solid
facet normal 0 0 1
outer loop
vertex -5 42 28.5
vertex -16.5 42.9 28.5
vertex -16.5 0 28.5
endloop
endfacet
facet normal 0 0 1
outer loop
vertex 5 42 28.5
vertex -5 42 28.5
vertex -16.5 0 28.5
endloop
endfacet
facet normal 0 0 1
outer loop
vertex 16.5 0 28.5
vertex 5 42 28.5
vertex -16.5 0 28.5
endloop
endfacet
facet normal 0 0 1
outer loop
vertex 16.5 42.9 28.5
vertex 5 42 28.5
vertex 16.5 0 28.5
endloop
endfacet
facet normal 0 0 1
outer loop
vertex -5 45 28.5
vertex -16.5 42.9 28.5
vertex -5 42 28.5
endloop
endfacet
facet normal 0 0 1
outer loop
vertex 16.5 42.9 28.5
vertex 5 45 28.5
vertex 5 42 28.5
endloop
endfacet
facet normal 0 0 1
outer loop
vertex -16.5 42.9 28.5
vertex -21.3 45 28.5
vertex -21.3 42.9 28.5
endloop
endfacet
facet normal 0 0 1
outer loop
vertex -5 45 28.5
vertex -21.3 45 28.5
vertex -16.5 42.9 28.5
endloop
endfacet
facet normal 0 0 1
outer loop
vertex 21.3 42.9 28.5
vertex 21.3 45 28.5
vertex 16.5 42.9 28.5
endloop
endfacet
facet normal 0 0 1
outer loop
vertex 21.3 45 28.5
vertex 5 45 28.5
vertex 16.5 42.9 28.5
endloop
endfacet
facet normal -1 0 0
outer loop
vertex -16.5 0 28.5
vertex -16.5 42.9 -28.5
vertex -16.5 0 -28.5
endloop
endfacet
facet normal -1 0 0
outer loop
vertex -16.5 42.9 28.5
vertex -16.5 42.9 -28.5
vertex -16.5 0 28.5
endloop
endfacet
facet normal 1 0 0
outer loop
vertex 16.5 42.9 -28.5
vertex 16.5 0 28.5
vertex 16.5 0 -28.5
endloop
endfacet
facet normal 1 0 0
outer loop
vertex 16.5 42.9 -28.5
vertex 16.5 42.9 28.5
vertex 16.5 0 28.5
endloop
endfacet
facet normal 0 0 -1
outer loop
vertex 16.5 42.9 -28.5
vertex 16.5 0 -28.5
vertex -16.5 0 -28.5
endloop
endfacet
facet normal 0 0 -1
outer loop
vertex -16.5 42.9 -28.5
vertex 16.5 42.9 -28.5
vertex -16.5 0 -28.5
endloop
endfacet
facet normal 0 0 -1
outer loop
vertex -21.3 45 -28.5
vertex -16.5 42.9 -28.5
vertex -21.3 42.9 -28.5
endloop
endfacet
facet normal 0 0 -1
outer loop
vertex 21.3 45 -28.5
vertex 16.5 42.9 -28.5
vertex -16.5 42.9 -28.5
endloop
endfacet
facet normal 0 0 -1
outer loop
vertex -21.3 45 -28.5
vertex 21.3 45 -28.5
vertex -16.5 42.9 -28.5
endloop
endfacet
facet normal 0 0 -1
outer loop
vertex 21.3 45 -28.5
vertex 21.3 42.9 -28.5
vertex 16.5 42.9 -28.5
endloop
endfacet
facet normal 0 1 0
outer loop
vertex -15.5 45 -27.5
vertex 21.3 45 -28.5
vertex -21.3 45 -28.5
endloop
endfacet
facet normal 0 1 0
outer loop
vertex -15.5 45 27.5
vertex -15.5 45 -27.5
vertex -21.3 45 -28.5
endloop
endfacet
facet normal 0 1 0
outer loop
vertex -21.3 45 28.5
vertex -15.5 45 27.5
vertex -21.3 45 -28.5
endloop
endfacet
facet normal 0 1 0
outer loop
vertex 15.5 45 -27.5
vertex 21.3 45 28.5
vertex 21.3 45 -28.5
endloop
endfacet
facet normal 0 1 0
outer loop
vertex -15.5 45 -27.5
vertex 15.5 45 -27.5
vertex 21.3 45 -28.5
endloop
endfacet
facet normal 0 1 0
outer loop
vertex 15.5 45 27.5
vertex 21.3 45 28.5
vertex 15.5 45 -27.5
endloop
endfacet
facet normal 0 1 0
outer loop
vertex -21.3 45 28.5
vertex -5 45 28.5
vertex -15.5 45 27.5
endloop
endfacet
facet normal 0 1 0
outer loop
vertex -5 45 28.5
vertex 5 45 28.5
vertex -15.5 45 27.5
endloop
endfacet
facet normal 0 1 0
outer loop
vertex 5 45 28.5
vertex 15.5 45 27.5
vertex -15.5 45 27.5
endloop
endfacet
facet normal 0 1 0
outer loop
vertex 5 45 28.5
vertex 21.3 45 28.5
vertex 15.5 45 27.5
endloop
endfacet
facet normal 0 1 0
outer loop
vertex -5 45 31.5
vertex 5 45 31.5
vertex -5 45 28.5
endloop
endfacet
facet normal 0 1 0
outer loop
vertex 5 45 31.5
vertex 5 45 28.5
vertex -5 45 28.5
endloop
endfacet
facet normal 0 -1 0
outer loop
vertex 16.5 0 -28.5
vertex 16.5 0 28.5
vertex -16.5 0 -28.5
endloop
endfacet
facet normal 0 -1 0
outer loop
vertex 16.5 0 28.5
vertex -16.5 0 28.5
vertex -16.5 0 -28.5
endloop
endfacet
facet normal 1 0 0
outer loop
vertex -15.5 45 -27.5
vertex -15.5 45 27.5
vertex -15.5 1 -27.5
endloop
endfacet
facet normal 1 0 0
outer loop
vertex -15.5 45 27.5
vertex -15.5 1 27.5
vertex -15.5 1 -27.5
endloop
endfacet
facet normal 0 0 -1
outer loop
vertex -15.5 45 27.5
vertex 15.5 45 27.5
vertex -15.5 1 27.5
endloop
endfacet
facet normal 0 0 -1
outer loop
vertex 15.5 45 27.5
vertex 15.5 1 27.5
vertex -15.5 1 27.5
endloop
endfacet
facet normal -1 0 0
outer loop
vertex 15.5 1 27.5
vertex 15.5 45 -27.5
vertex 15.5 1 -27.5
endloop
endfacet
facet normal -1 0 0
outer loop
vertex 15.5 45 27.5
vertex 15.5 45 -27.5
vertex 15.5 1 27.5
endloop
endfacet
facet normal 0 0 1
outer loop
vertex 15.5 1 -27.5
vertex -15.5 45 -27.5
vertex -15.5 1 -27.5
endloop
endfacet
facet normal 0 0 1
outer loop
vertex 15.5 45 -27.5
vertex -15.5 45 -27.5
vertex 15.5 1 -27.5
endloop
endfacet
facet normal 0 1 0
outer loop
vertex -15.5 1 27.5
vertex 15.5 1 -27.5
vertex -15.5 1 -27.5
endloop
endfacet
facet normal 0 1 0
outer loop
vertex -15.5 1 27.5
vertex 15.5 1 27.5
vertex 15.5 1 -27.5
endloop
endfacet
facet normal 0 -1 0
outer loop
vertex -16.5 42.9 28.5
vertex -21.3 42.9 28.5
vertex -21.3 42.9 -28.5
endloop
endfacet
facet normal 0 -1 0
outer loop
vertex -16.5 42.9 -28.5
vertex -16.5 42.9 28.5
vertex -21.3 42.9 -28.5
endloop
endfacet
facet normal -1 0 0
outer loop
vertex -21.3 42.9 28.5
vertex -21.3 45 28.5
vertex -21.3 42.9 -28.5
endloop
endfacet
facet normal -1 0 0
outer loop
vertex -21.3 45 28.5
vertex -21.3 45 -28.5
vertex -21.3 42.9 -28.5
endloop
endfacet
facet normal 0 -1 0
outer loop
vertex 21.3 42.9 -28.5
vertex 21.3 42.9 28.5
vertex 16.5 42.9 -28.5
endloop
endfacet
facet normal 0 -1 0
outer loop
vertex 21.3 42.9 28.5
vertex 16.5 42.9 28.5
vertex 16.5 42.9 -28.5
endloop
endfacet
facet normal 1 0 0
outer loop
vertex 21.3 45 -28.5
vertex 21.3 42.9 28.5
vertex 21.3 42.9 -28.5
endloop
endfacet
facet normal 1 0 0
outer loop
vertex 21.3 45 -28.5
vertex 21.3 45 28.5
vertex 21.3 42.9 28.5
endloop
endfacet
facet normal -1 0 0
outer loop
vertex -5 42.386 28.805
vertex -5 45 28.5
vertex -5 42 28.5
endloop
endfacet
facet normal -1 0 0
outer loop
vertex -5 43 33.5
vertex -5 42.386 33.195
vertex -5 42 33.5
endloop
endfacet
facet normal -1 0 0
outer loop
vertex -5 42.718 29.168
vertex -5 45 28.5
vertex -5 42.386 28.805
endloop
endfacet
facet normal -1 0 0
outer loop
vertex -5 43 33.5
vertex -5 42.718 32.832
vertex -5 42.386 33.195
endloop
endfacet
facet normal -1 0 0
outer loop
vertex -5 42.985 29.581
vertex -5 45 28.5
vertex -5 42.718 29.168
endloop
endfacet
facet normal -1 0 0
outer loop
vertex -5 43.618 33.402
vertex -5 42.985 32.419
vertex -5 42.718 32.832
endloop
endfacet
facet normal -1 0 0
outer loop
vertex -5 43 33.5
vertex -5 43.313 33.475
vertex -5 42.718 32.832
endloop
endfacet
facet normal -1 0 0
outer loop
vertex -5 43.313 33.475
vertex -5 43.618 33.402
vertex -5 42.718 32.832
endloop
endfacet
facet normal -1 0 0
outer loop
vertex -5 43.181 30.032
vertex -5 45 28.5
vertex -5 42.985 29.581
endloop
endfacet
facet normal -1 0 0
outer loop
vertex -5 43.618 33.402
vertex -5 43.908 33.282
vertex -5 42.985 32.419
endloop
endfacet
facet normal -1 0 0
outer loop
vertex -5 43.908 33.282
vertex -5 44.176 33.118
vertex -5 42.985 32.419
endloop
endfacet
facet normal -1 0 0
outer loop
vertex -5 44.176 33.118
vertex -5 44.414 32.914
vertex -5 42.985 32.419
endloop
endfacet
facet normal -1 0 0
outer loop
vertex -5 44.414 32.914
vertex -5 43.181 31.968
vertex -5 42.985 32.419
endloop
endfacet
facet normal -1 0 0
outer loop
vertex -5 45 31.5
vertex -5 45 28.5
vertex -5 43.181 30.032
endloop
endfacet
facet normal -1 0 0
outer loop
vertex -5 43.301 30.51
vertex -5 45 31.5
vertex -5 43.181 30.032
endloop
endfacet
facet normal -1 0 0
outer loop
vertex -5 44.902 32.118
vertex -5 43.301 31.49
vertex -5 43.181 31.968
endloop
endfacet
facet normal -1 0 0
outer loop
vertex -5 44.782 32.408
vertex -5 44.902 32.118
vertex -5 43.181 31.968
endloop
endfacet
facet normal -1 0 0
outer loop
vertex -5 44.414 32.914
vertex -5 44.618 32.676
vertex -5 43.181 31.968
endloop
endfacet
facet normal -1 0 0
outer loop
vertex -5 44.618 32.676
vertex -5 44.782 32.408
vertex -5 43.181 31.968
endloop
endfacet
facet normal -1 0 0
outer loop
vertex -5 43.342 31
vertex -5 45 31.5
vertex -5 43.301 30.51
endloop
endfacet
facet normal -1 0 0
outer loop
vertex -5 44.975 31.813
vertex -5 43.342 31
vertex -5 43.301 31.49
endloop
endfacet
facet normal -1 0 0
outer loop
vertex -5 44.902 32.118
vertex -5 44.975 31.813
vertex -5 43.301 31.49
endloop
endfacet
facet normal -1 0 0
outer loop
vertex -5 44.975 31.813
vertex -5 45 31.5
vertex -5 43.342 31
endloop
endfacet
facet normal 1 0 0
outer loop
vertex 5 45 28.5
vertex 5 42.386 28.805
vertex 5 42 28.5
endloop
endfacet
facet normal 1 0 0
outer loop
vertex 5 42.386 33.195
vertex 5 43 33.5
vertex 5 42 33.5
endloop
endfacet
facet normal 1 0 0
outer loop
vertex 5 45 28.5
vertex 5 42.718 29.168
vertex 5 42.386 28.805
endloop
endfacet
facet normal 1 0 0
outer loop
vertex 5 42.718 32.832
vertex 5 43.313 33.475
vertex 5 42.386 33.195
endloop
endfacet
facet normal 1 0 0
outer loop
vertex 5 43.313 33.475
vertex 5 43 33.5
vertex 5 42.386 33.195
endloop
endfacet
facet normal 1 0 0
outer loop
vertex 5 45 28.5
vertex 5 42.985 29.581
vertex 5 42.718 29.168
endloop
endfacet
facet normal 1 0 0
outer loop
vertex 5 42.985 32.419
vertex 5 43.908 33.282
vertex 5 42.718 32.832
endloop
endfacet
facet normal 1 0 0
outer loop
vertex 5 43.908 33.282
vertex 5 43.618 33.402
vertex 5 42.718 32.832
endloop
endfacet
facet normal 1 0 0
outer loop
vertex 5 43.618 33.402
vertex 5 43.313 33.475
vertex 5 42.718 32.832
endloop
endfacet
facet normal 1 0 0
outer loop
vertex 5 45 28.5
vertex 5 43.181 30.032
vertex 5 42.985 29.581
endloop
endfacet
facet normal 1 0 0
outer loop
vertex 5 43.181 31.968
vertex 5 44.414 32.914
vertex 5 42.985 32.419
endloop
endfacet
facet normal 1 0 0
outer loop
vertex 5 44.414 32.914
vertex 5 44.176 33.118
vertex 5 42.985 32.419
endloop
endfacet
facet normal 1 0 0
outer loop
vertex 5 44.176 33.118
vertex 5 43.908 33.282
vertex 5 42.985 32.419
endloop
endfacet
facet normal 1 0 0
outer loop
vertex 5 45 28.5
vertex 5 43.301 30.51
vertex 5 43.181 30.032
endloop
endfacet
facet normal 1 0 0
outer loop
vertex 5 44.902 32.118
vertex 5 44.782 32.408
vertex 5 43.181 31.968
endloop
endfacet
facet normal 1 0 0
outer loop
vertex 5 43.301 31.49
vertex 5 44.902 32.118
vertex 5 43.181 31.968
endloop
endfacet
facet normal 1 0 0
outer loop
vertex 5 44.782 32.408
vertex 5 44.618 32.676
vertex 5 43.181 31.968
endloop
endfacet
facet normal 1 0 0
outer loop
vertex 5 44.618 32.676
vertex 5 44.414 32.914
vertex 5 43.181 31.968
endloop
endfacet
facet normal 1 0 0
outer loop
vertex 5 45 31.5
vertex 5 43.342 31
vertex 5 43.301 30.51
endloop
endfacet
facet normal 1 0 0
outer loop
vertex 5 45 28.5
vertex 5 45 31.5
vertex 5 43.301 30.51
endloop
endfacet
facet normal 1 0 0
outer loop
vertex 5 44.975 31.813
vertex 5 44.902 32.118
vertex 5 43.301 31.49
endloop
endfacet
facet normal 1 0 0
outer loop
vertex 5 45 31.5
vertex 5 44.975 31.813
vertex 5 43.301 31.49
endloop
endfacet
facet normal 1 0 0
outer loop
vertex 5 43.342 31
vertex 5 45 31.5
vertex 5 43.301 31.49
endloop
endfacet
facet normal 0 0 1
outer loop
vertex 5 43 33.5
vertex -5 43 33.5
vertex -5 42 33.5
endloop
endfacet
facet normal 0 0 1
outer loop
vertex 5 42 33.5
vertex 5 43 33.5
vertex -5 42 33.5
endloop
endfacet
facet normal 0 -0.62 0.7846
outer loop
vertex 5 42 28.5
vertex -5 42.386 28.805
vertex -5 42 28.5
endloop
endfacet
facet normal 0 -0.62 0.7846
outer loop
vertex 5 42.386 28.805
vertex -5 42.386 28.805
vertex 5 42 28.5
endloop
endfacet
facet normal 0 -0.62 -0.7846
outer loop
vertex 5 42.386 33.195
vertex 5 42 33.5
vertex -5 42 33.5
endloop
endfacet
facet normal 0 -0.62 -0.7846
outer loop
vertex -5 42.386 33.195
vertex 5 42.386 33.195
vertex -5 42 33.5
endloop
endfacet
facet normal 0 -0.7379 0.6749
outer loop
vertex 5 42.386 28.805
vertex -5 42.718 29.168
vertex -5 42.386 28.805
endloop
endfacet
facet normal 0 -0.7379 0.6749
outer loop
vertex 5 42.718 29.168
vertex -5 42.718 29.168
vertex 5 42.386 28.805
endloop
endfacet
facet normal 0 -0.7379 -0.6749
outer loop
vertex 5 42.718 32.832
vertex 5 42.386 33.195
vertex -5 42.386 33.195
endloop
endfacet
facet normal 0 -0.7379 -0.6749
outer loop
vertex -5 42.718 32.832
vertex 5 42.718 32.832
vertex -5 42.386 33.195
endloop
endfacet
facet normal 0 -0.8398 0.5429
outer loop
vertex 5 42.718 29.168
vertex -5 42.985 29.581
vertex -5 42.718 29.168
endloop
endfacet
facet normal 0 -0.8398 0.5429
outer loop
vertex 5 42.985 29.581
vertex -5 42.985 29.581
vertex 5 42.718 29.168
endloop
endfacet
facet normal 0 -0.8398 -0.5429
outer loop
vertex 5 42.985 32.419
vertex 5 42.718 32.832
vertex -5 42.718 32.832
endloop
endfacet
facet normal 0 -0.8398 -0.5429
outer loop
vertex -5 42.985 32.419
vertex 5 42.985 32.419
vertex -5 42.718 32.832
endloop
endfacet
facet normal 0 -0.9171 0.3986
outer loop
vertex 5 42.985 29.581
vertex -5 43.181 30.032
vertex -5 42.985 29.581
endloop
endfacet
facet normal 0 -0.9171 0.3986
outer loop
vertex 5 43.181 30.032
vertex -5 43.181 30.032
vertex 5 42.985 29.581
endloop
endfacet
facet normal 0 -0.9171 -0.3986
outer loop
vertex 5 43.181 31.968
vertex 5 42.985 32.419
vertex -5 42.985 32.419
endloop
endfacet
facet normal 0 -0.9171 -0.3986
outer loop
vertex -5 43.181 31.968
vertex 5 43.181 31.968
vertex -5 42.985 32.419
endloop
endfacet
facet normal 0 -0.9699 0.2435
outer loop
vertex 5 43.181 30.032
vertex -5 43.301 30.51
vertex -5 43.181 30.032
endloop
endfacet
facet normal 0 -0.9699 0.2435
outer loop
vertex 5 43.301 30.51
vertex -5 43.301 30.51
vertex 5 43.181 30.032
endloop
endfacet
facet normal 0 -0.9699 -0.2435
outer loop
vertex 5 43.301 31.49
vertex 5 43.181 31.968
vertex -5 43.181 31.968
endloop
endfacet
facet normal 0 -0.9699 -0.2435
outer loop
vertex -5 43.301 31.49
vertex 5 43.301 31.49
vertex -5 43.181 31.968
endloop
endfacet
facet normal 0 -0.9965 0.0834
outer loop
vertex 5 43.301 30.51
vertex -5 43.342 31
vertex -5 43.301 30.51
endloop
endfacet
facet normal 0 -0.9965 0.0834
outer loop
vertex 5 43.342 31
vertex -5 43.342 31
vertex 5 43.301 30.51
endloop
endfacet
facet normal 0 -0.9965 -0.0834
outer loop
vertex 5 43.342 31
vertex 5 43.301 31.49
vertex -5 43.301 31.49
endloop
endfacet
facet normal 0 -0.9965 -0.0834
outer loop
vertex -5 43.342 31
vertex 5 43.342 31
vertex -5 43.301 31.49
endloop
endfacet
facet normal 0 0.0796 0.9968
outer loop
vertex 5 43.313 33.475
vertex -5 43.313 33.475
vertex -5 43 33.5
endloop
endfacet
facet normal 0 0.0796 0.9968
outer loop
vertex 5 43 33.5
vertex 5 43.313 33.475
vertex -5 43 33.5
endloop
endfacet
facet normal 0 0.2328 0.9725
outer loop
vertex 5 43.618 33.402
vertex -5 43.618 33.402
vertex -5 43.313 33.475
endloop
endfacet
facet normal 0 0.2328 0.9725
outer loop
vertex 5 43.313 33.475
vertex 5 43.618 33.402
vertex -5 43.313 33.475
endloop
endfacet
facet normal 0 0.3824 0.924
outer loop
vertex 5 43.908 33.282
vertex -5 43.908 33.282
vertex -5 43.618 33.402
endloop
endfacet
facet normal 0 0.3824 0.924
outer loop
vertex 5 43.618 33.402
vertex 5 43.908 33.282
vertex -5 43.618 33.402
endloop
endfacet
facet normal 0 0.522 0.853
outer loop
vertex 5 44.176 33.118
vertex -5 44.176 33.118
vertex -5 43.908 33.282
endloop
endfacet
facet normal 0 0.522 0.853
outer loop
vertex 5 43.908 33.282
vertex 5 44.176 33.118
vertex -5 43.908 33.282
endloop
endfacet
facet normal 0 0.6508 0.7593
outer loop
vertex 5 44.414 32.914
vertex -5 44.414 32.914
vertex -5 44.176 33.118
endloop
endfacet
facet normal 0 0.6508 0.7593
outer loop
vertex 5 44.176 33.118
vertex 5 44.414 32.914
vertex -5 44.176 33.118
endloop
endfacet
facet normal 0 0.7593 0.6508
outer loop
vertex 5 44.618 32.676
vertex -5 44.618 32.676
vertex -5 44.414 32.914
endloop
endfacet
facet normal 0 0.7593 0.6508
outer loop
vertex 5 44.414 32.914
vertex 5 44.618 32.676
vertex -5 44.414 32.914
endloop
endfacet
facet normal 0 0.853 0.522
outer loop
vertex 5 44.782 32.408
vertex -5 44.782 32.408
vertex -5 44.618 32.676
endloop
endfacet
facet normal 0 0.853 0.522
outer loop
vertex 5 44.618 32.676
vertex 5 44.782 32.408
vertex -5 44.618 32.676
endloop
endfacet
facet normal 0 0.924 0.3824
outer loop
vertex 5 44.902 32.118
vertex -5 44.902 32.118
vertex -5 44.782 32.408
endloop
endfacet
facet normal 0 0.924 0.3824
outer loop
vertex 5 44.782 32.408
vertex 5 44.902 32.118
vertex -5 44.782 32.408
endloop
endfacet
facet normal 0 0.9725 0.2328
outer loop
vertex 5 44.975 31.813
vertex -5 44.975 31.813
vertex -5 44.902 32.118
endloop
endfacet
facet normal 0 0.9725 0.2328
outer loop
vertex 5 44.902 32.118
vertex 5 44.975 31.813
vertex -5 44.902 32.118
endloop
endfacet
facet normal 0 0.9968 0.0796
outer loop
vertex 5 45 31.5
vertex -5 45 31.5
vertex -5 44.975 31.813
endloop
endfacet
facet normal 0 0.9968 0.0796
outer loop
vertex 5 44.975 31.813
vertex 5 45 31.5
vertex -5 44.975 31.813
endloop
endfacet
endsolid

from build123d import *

# Parameters (mm, degrees)
SKETCH1_W           = 33
SKETCH1_H           = 57
BOSS_EXTRUDE1_DEPTH = 45
SHELL1_T            = -1
SKETCH3_W           = 57
SKETCH3_H           = 2.1
BOSS_EXTRUDE2_DEPTH = 4.8
SKETCH4_W           = 10
SKETCH4_H           = 3
BOSS_EXTRUDE3_DEPTH = 5
CUT_EXTRUDE1_DEPTH  = 10
FILLET2_R           = 2


with BuildPart() as part:
    # Sketch1 → Boss-Extrude1 (new body)
    with BuildSketch(Plane(origin=(0, 0, 0), x_dir=(1, 0, 0), z_dir=(0, 1, 0))):
        Rectangle(SKETCH1_W, SKETCH1_H)
    extrude(amount=BOSS_EXTRUDE1_DEPTH)

    # Shell1
    shell1_openings = [part.faces().sort_by_distance(p)[0] for p in [
        (0, 45, 0),
    ]]
    offset(amount=SHELL1_T, openings=shell1_openings, kind=Kind.INTERSECTION)

    # Sketch3 → Boss-Extrude2 (add)
    with BuildSketch(Plane.ZY.offset(16.5)):
        with Locations((0, 43.95)):
            Rectangle(SKETCH3_W, SKETCH3_H)
    boss_extrude2 = extrude(amount=BOSS_EXTRUDE2_DEPTH)

    # Mirror1: Boss-Extrude2 across plane
    add(boss_extrude2.mirror(Plane(origin=(0, 0, 0), x_dir=(0, 0, 1), z_dir=(1, 0, 0))))

    # Sketch4 → Boss-Extrude3 (add)
    with BuildSketch(Plane.XY.offset(28.5)):
        with Locations((0, 43.5)):
            Rectangle(SKETCH4_W, SKETCH4_H)
    extrude(amount=BOSS_EXTRUDE3_DEPTH)

    # Sketch5 → Cut-Extrude1 (cut)
    with BuildSketch(Plane.ZY.offset(5)):
        with BuildLine():
            Line((28.5, 42), (33.5, 42))
            ThreePointArc((33.5, 42), (31, 43.341687605), (28.5, 42))
        make_face()
    extrude(amount=-CUT_EXTRUDE1_DEPTH, mode=Mode.SUBTRACT)

    # Fillet2
    fillet2_edges = [part.edges().sort_by_distance(p)[0] for p in [
        (0, 45, 33.5),
    ]]
    fillet(fillet2_edges, radius=FILLET2_R)


solid = part.part
